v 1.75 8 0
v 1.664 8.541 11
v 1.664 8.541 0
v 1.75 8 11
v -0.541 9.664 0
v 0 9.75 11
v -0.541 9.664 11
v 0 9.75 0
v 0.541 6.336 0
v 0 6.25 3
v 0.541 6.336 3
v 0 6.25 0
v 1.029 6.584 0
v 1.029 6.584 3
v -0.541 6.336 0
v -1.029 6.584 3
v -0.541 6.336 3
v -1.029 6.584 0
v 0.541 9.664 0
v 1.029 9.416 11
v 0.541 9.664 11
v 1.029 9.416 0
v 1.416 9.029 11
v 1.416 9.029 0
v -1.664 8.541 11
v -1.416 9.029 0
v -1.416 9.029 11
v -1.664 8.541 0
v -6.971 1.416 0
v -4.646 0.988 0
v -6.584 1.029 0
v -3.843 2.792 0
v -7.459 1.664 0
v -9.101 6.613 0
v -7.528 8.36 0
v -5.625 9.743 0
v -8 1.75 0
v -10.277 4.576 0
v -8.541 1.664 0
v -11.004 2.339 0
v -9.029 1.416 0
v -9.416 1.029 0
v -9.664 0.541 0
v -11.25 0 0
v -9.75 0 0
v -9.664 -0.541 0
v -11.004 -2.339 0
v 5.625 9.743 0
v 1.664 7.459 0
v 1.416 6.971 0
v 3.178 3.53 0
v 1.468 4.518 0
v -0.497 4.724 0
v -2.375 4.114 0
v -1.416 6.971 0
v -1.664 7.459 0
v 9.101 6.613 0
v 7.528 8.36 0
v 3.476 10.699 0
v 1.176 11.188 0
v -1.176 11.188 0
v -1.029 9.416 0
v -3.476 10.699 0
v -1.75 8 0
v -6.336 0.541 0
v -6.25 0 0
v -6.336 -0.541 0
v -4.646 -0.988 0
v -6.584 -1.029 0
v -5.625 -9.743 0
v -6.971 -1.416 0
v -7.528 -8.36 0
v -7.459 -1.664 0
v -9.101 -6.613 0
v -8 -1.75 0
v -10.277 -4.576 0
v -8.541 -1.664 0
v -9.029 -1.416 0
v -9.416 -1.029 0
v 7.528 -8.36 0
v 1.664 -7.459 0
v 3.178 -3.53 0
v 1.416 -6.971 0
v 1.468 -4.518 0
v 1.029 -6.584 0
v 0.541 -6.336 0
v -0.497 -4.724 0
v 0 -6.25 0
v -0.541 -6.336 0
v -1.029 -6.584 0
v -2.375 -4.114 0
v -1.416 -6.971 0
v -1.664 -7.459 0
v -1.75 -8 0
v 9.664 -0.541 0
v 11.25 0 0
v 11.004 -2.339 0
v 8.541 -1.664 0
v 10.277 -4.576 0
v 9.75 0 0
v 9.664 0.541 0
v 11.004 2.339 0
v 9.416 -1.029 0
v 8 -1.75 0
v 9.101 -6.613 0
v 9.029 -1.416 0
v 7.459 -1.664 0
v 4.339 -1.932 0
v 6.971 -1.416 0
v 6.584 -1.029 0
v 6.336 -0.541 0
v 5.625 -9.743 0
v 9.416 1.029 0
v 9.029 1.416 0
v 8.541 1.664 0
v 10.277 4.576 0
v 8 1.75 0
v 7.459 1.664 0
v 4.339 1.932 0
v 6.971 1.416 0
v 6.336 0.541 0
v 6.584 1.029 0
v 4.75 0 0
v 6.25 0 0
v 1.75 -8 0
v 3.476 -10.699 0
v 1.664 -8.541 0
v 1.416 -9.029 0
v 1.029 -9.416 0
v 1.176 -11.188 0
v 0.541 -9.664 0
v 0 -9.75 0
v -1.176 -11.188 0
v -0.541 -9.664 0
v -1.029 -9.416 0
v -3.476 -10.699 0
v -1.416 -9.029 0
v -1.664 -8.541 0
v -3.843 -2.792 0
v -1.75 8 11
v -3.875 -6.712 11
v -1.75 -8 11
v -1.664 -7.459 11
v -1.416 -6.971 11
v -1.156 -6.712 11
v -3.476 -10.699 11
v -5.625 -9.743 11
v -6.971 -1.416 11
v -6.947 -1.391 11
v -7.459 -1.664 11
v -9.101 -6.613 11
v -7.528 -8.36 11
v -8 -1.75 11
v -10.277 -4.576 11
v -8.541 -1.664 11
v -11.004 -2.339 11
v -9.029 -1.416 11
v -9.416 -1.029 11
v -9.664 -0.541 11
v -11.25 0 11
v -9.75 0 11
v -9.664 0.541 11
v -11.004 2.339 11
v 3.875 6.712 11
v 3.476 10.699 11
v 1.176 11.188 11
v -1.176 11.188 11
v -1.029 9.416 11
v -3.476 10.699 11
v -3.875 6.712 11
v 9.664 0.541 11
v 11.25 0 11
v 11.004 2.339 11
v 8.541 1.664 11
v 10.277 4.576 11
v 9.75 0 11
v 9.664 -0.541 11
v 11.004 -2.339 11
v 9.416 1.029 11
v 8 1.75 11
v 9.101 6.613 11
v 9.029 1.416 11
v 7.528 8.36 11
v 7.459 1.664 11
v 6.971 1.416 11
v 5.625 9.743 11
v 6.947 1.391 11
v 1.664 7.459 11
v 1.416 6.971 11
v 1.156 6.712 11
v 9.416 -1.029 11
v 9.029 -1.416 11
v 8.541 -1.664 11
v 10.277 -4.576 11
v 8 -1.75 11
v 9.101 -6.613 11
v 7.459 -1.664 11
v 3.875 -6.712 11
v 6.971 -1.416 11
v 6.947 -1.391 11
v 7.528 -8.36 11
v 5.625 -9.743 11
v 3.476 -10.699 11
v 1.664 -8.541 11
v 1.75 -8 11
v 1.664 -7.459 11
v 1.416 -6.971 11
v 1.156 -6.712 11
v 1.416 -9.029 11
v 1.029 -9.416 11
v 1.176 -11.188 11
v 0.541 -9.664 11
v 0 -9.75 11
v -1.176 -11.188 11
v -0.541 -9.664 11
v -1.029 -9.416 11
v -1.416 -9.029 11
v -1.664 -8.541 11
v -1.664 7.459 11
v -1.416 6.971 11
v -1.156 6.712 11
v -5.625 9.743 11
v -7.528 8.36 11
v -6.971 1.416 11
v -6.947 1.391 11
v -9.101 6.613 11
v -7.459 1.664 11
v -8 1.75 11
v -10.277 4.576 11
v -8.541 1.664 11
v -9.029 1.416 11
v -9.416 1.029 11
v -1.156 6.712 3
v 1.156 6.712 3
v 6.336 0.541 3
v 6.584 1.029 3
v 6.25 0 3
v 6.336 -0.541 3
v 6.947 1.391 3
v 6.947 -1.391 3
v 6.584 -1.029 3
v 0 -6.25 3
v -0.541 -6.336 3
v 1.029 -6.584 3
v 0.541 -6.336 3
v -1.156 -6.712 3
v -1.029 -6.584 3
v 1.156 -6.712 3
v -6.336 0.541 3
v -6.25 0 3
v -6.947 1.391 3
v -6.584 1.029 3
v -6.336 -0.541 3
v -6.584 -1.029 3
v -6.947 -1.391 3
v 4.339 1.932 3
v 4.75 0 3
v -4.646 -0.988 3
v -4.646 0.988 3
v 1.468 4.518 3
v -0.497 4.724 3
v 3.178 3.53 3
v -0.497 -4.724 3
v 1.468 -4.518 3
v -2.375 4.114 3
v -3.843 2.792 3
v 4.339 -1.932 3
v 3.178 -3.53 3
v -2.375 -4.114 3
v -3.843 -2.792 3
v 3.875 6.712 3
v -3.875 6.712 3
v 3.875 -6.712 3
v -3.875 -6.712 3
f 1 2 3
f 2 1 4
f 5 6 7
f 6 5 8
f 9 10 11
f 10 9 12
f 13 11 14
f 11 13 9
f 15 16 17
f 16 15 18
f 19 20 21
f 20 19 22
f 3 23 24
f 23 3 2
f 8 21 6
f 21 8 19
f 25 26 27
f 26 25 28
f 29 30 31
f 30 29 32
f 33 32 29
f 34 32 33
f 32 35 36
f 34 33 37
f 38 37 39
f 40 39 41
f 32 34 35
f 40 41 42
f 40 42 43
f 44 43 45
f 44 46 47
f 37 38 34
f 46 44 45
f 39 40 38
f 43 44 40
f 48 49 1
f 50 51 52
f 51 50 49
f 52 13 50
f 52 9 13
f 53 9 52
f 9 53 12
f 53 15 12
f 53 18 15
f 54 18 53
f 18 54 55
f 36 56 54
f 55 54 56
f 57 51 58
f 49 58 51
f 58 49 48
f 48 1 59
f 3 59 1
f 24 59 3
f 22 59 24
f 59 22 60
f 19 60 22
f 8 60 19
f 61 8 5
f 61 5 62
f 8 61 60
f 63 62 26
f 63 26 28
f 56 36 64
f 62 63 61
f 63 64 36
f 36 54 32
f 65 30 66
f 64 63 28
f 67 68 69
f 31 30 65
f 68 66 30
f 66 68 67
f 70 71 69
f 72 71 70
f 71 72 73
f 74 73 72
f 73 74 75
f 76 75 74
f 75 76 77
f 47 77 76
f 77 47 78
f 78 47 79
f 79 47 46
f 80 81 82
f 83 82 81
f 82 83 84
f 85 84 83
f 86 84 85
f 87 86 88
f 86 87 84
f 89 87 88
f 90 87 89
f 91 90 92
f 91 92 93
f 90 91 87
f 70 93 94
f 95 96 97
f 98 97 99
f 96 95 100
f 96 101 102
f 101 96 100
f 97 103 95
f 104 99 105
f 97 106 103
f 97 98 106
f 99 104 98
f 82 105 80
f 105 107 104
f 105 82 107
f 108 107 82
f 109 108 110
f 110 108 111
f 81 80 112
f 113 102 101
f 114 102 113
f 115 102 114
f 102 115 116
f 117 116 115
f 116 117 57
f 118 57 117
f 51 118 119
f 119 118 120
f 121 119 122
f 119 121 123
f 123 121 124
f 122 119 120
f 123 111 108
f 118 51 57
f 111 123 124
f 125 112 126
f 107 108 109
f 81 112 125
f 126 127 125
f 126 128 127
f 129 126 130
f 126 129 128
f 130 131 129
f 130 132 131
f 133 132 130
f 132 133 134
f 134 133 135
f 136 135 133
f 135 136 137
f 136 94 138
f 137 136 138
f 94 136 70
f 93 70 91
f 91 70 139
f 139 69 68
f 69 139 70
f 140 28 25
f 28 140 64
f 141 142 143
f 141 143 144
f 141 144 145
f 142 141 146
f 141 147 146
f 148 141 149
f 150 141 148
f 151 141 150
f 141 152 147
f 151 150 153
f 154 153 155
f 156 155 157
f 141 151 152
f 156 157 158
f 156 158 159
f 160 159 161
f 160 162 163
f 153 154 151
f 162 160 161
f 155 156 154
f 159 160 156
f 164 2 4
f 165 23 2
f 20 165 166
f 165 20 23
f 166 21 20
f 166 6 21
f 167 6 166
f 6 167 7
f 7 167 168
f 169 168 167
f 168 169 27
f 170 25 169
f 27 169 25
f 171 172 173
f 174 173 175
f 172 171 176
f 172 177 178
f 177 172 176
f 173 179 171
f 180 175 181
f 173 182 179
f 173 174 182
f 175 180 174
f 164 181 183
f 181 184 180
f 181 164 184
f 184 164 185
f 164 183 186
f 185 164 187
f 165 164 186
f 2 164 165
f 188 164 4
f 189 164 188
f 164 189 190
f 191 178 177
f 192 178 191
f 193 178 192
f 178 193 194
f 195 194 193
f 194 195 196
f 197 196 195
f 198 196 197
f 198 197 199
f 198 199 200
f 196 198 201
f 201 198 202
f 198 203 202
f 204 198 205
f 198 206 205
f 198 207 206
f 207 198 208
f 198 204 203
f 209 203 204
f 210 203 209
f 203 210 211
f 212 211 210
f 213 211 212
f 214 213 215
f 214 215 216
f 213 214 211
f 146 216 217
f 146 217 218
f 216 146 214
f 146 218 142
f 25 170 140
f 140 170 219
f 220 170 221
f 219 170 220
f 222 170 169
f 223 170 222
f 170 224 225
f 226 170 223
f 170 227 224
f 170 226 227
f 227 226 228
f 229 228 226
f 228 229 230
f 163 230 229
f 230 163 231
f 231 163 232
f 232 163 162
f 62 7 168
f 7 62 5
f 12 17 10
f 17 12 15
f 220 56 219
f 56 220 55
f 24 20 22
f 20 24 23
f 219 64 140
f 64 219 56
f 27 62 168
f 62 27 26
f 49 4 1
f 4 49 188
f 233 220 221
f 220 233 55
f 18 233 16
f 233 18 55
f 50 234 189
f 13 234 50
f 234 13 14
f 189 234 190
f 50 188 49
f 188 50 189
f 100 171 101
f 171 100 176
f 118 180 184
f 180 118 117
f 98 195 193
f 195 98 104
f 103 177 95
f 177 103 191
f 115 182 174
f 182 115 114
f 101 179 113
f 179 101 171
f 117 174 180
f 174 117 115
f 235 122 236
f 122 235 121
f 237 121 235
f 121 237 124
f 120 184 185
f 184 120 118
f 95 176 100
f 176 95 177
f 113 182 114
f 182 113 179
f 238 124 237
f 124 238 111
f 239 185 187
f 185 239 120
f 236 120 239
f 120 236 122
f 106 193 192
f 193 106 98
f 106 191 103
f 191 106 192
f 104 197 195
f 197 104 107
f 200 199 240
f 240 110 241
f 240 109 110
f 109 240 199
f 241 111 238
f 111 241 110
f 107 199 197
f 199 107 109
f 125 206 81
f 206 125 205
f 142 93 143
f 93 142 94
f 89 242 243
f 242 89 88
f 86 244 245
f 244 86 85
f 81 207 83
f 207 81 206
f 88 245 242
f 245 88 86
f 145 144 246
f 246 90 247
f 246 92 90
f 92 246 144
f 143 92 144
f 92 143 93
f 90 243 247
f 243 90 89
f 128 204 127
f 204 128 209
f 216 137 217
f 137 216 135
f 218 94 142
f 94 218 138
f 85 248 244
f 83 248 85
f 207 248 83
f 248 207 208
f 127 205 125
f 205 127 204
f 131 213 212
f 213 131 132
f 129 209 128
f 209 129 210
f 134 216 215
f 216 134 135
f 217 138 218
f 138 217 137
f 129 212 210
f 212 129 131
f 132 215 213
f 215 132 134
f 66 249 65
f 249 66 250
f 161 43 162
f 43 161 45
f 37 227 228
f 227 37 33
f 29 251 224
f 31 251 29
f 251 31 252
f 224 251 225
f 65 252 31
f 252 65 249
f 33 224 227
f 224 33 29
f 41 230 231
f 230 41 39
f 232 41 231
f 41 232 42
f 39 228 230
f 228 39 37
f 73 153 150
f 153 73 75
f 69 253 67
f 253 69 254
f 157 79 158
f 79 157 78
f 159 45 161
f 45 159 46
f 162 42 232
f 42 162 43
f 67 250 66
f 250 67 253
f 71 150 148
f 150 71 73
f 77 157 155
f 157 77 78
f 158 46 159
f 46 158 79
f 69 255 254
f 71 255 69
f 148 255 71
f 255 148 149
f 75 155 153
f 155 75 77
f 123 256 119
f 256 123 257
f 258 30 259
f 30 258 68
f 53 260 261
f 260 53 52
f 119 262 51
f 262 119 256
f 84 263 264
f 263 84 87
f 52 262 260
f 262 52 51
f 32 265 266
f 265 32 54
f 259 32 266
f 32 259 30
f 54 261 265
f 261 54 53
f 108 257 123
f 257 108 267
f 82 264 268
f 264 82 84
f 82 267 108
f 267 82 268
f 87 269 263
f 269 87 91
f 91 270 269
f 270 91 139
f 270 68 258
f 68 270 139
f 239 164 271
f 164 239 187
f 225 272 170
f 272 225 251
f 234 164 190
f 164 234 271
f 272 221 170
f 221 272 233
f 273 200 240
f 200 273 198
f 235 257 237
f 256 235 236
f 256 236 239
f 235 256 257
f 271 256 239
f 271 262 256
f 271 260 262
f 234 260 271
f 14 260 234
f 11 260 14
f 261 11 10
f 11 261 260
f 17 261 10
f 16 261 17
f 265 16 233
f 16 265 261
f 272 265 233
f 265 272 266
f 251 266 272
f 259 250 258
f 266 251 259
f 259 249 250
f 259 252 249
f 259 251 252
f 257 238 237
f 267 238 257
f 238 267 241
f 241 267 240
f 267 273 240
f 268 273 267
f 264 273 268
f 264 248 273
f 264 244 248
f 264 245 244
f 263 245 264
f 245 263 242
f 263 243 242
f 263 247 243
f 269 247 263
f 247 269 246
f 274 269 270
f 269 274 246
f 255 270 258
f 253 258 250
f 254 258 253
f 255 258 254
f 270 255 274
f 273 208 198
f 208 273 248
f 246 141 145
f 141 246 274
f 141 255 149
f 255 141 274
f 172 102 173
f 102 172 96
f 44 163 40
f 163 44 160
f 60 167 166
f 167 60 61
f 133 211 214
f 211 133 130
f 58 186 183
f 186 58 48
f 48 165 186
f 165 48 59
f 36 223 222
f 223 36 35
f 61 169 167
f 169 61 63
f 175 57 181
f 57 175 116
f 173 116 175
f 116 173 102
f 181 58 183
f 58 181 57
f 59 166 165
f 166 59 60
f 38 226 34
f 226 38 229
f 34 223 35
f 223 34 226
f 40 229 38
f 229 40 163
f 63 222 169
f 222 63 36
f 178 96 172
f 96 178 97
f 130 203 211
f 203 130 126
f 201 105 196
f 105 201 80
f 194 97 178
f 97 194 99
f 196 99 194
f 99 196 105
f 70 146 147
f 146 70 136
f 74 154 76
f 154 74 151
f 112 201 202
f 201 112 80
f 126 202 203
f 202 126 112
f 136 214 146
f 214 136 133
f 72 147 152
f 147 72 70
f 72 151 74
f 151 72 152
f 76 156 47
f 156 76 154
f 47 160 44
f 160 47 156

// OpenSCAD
TUERCA_ALTO         = 7+1;
TUERCA_DIAM         = 14.5+1;

VARILLA_DIAM        = 8+1.5;

SOP_AGUJ_DIAM       = 3+0.5;
SOP_AGUJ_DIST       = 16;
SOP_PARED_ESP       = 3;
SOP_ALTO            = TUERCA_ALTO+SOP_PARED_ESP;
SOP_DIAM            = SOP_AGUJ_DIST+SOP_AGUJ_DIAM+SOP_PARED_ESP;


module tuercaSoporte()
{
    difference() {
        union() {
            cylinder(d=SOP_DIAM, h=SOP_ALTO);
        }
        color("red", 0.5) {
            cylinder(d=VARILLA_DIAM, h=SOP_ALTO*2);
            translate([0,0,SOP_PARED_ESP]) cylinder(d=TUERCA_DIAM, h=TUERCA_ALTO, $fn=6);
            for (i=[[0,1],[1,0],[0,-1],[-1,0]]) {
                translate([i[0]*SOP_AGUJ_DIST/2, i[1]*SOP_AGUJ_DIST/2, 0]) 
                    cylinder(d=SOP_AGUJ_DIAM, h=SOP_ALTO, $fn=20);
            }
        }
    }
}

tuercaSoporte();
